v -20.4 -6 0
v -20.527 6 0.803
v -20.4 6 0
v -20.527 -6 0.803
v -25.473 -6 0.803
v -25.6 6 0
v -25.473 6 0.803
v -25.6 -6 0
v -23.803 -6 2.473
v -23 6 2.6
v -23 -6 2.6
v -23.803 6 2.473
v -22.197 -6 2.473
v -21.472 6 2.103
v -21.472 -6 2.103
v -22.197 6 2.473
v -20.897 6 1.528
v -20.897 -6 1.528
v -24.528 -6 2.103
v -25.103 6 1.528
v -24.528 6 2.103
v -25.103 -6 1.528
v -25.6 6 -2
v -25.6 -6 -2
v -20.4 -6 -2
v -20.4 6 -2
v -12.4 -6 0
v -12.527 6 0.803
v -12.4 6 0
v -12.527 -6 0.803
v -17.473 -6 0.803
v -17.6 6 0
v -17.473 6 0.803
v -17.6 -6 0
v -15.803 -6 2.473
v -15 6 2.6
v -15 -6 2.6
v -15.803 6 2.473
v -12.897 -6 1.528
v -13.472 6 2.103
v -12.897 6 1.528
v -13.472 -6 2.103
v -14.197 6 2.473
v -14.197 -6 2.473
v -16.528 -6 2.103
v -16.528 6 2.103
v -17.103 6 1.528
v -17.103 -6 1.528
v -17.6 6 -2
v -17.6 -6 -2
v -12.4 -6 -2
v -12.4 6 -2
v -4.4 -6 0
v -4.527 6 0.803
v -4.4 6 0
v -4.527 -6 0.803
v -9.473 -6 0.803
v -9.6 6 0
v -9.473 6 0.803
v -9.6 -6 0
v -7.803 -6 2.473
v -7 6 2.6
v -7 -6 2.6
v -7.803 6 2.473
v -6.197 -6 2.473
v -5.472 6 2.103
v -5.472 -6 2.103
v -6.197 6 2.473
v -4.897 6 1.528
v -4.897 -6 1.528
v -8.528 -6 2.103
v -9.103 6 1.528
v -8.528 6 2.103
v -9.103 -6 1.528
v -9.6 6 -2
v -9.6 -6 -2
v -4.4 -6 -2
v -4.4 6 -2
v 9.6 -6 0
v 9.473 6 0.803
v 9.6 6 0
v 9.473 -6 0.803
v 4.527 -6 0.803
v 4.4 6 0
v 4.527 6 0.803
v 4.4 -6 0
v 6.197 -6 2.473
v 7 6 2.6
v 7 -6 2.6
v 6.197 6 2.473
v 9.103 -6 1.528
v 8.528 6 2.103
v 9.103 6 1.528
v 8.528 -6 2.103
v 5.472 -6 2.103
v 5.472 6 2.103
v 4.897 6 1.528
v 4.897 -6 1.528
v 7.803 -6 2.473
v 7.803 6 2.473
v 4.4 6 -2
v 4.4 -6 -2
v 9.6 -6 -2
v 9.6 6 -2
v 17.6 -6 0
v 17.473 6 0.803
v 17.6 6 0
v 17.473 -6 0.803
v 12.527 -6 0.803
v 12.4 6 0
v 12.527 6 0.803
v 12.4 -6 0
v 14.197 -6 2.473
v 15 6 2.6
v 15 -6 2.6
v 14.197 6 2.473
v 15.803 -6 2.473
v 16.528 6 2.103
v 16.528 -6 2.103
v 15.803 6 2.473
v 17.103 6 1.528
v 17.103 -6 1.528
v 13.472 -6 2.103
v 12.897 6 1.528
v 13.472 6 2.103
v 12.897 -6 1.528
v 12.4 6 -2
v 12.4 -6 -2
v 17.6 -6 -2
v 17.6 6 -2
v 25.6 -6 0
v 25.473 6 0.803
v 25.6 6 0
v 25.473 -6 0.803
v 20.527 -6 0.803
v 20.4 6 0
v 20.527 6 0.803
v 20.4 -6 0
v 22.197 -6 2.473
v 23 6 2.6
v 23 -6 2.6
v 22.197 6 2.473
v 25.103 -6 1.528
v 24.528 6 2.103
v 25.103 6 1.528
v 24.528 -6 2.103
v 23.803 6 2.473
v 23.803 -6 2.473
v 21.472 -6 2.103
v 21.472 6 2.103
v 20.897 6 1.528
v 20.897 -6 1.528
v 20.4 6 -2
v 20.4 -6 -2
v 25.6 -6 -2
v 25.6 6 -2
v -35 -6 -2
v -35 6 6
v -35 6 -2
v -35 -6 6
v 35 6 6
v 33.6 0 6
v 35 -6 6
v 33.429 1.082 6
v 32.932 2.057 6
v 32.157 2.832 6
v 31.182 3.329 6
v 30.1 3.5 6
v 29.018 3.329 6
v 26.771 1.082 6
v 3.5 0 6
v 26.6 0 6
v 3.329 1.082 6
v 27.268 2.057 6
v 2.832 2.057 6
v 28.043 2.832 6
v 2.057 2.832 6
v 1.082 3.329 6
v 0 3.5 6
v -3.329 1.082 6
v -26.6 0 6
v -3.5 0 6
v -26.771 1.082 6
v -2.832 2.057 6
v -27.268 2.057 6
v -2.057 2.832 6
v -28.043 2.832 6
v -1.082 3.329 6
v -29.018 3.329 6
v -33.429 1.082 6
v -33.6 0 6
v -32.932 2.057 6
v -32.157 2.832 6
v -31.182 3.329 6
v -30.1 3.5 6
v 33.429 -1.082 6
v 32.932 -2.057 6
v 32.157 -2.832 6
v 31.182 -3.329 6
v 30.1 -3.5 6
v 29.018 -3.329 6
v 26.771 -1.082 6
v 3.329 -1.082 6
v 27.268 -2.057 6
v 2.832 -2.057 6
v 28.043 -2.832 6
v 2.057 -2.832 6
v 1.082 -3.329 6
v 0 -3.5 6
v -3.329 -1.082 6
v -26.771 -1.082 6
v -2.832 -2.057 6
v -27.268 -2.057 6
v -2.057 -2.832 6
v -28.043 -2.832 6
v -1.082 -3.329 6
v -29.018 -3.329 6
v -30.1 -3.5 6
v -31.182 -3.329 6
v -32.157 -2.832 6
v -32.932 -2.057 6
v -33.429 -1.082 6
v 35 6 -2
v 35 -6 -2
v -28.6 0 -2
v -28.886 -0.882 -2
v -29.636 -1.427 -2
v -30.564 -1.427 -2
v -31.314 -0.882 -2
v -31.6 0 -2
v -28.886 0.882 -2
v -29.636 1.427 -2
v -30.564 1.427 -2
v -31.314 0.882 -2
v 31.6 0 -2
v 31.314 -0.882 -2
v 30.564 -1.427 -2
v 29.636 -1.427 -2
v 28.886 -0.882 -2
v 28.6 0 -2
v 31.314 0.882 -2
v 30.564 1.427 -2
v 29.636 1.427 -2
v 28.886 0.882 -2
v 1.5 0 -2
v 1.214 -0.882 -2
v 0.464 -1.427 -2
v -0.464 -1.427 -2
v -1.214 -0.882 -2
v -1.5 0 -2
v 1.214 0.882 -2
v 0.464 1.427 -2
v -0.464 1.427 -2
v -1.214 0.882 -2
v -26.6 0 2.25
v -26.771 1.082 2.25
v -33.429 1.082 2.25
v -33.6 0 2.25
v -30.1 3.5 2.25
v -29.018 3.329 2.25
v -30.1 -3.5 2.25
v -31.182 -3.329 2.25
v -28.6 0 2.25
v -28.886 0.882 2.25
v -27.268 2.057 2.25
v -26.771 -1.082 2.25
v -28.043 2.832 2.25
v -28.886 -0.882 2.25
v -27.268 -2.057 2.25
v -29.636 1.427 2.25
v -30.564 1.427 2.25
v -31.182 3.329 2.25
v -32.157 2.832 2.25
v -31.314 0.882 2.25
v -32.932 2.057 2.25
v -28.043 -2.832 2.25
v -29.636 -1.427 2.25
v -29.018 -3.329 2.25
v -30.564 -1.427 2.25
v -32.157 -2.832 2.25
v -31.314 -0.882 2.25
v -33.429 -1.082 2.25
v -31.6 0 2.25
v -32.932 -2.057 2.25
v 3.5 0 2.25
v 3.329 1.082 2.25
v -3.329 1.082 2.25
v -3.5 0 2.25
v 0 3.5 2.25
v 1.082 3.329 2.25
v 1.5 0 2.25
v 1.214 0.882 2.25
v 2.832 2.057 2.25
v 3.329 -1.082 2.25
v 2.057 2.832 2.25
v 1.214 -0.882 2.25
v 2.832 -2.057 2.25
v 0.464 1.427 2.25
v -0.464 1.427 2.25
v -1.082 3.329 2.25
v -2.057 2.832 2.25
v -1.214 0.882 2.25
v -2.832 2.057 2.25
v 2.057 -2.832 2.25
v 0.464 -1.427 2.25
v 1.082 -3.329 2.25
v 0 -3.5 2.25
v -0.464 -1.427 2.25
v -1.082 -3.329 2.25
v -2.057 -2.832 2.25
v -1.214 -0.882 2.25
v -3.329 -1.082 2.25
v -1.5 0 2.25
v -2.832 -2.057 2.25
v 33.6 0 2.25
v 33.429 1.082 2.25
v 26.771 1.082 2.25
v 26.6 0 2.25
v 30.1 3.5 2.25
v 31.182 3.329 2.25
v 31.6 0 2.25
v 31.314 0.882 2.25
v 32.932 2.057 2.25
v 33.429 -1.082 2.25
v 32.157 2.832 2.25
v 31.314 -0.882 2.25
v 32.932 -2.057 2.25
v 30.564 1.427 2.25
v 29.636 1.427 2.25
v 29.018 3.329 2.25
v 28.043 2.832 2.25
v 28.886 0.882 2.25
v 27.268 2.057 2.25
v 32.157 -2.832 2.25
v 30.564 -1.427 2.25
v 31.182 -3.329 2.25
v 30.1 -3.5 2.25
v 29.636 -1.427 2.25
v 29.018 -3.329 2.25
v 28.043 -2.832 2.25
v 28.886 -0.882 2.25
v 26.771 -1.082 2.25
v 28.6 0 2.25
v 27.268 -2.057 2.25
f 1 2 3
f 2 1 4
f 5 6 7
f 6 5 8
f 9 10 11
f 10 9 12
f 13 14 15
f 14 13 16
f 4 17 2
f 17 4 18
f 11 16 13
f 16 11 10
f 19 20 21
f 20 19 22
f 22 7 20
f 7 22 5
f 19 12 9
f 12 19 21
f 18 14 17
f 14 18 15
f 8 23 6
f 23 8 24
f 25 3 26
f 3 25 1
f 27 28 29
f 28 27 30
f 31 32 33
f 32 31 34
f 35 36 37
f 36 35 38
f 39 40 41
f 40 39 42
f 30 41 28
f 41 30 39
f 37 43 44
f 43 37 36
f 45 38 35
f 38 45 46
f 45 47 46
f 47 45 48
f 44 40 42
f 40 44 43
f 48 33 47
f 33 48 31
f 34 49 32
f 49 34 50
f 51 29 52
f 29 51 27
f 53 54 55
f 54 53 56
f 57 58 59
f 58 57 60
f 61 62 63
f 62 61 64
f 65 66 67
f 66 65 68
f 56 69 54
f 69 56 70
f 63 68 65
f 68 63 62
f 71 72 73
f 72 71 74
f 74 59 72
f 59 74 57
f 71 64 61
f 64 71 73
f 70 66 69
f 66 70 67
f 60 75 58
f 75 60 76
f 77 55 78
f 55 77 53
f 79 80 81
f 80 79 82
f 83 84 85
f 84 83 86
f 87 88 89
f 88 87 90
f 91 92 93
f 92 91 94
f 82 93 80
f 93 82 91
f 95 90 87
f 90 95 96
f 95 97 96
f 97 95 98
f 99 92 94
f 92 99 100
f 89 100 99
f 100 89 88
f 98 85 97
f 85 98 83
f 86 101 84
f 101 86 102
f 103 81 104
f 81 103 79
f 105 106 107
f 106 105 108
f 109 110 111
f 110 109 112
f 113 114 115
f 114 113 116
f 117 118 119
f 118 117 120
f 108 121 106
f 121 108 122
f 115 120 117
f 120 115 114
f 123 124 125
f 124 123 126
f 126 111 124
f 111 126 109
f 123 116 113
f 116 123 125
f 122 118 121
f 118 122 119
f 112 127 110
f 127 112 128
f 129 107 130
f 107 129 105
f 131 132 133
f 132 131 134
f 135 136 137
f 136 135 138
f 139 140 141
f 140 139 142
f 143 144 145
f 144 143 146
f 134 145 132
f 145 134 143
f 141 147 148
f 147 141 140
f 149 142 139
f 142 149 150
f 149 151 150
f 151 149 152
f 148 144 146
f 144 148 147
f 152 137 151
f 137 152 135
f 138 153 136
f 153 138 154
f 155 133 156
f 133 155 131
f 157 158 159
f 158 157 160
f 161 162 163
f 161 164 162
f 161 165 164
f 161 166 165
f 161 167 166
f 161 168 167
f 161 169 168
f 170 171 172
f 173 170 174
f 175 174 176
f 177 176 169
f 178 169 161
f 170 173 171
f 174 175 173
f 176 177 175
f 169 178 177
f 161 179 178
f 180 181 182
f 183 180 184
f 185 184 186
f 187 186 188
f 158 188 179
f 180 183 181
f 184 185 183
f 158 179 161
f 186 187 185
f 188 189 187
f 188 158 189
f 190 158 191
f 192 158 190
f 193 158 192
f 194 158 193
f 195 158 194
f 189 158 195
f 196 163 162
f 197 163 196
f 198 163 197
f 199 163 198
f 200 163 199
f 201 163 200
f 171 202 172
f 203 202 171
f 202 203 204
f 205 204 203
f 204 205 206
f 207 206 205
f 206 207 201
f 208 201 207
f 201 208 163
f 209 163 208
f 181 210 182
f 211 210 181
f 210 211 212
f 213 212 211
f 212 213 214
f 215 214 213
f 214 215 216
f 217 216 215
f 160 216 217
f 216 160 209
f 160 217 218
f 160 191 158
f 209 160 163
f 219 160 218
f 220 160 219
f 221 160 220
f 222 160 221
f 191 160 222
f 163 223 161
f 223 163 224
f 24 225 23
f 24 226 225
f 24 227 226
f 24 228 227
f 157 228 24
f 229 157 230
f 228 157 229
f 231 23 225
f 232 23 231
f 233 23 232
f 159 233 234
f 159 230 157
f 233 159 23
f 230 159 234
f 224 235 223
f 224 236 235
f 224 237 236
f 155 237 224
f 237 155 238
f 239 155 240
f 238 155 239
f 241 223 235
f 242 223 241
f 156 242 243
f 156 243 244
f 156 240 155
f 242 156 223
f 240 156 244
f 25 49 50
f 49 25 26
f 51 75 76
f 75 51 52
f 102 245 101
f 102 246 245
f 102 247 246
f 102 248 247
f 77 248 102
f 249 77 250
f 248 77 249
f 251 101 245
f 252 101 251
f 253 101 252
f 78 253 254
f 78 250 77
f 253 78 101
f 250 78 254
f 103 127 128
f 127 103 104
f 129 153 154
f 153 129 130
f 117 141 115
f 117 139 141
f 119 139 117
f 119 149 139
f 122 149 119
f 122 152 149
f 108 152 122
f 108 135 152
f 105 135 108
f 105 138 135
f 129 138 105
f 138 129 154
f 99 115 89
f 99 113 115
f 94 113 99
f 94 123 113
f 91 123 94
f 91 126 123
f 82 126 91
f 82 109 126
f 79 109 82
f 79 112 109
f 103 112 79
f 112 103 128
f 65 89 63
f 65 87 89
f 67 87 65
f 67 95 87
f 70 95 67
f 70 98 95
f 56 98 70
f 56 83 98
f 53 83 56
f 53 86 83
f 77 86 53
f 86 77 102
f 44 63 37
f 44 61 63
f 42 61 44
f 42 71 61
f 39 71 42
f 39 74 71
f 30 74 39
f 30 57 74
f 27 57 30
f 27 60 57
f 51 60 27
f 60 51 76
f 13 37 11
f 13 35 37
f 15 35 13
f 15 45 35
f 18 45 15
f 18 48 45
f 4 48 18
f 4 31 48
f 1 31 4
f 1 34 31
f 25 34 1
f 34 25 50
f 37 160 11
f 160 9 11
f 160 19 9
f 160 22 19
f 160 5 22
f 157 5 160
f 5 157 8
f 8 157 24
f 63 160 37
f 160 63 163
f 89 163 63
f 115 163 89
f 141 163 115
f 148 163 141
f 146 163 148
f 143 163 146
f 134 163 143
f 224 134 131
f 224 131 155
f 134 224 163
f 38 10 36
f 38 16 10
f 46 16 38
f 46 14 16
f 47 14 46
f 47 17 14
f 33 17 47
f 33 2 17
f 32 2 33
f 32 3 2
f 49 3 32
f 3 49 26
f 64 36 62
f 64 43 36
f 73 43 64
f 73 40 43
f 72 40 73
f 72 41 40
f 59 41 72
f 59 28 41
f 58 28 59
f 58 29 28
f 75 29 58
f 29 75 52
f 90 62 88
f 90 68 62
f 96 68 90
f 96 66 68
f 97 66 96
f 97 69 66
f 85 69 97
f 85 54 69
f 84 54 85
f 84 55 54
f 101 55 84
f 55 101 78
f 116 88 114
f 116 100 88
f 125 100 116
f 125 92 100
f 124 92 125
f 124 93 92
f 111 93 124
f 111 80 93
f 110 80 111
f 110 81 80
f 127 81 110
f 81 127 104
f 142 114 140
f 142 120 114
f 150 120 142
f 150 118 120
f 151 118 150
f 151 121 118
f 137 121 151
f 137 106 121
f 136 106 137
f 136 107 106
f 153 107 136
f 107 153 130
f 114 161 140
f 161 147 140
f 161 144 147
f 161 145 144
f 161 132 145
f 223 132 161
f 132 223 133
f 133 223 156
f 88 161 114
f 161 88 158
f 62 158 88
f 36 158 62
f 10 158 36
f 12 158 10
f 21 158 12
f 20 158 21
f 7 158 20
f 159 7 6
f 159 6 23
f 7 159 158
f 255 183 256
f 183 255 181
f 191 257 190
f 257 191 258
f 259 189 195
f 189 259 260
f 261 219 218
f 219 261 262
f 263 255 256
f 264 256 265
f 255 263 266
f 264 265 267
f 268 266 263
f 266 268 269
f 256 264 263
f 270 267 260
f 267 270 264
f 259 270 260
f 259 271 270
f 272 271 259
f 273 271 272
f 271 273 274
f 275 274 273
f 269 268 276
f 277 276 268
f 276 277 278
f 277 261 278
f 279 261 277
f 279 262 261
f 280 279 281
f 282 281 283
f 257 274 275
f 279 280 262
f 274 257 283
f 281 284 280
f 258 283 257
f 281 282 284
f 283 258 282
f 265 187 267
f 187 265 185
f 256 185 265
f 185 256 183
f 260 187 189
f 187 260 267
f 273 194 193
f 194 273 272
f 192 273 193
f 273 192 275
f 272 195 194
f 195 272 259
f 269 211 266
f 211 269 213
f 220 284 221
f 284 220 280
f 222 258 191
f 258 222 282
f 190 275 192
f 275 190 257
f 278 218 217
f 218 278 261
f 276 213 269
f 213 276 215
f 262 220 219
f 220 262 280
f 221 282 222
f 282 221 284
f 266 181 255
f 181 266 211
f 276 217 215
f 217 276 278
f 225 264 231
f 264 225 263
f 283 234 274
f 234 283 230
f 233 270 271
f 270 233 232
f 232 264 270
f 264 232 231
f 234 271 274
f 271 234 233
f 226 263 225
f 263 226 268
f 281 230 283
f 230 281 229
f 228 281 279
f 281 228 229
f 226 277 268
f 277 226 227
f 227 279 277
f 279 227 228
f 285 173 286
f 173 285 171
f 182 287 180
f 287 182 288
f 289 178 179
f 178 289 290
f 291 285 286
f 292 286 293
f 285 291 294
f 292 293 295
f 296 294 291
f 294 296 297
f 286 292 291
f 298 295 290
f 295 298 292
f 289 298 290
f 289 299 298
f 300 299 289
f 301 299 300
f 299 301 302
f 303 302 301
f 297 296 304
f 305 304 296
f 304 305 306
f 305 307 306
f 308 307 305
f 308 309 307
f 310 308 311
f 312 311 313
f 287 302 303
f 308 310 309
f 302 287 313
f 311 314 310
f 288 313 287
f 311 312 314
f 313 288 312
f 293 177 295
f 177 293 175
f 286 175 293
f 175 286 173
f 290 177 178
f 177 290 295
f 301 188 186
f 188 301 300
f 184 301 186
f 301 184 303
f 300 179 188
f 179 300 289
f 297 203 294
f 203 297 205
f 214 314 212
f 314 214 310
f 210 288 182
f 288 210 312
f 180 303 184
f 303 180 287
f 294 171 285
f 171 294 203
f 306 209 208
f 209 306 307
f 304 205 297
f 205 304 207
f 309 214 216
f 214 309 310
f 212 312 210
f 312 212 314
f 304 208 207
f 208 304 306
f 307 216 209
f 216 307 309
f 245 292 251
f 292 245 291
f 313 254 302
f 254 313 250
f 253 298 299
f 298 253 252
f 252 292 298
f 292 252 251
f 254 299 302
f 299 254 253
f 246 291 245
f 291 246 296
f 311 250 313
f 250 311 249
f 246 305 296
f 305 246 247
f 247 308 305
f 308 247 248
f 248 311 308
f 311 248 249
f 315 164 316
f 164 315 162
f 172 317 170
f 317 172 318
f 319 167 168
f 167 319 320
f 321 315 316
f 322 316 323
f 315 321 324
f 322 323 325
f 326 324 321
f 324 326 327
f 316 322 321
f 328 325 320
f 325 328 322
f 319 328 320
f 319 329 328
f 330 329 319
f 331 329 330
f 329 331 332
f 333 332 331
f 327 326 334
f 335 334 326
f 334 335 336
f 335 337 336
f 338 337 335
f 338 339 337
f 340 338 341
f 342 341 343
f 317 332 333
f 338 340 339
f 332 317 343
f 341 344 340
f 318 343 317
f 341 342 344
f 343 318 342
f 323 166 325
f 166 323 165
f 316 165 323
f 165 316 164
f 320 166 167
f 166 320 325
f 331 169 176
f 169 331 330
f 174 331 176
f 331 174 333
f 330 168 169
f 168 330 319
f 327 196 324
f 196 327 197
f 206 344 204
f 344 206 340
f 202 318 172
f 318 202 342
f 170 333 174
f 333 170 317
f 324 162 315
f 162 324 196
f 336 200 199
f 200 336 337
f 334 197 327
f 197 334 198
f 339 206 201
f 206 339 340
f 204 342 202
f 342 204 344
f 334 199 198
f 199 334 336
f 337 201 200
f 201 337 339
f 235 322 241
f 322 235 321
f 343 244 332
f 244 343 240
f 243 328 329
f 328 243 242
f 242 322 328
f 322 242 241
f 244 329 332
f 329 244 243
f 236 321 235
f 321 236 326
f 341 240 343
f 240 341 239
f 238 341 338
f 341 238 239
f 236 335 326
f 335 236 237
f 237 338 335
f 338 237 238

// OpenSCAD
width = 12;
length = 70;
height = 8;
cable_diameter = 5.2;
hole_diameter = 3;
cable_positions = [-23, -15, -7, 7, 15, 23];


difference(){
difference() {
translate([0, 0, 2])
cube([length, width, height], center=true);

rotate([90,0,0]) {
for (p=cable_positions) {
    translate([p,0,0]) {
        cylinder(h=width*2, d=cable_diameter, $fn=20, center=true);
        translate([0,-cable_diameter/2,0])
        cube([cable_diameter, cable_diameter, width*2], center=true);
    }
}
}
}

hole_offset = length/2 - hole_diameter/2 - 3.4;
for (i = [-1:1]) {
    translate([i*hole_offset,0,0]) {
        translate([0, 0, 4.5])
        cylinder(h=4.5, d=7, center=true, $fn=20);
        cylinder(h=height*2, d=hole_diameter, center=true, $fn=10);
    }
}
}
